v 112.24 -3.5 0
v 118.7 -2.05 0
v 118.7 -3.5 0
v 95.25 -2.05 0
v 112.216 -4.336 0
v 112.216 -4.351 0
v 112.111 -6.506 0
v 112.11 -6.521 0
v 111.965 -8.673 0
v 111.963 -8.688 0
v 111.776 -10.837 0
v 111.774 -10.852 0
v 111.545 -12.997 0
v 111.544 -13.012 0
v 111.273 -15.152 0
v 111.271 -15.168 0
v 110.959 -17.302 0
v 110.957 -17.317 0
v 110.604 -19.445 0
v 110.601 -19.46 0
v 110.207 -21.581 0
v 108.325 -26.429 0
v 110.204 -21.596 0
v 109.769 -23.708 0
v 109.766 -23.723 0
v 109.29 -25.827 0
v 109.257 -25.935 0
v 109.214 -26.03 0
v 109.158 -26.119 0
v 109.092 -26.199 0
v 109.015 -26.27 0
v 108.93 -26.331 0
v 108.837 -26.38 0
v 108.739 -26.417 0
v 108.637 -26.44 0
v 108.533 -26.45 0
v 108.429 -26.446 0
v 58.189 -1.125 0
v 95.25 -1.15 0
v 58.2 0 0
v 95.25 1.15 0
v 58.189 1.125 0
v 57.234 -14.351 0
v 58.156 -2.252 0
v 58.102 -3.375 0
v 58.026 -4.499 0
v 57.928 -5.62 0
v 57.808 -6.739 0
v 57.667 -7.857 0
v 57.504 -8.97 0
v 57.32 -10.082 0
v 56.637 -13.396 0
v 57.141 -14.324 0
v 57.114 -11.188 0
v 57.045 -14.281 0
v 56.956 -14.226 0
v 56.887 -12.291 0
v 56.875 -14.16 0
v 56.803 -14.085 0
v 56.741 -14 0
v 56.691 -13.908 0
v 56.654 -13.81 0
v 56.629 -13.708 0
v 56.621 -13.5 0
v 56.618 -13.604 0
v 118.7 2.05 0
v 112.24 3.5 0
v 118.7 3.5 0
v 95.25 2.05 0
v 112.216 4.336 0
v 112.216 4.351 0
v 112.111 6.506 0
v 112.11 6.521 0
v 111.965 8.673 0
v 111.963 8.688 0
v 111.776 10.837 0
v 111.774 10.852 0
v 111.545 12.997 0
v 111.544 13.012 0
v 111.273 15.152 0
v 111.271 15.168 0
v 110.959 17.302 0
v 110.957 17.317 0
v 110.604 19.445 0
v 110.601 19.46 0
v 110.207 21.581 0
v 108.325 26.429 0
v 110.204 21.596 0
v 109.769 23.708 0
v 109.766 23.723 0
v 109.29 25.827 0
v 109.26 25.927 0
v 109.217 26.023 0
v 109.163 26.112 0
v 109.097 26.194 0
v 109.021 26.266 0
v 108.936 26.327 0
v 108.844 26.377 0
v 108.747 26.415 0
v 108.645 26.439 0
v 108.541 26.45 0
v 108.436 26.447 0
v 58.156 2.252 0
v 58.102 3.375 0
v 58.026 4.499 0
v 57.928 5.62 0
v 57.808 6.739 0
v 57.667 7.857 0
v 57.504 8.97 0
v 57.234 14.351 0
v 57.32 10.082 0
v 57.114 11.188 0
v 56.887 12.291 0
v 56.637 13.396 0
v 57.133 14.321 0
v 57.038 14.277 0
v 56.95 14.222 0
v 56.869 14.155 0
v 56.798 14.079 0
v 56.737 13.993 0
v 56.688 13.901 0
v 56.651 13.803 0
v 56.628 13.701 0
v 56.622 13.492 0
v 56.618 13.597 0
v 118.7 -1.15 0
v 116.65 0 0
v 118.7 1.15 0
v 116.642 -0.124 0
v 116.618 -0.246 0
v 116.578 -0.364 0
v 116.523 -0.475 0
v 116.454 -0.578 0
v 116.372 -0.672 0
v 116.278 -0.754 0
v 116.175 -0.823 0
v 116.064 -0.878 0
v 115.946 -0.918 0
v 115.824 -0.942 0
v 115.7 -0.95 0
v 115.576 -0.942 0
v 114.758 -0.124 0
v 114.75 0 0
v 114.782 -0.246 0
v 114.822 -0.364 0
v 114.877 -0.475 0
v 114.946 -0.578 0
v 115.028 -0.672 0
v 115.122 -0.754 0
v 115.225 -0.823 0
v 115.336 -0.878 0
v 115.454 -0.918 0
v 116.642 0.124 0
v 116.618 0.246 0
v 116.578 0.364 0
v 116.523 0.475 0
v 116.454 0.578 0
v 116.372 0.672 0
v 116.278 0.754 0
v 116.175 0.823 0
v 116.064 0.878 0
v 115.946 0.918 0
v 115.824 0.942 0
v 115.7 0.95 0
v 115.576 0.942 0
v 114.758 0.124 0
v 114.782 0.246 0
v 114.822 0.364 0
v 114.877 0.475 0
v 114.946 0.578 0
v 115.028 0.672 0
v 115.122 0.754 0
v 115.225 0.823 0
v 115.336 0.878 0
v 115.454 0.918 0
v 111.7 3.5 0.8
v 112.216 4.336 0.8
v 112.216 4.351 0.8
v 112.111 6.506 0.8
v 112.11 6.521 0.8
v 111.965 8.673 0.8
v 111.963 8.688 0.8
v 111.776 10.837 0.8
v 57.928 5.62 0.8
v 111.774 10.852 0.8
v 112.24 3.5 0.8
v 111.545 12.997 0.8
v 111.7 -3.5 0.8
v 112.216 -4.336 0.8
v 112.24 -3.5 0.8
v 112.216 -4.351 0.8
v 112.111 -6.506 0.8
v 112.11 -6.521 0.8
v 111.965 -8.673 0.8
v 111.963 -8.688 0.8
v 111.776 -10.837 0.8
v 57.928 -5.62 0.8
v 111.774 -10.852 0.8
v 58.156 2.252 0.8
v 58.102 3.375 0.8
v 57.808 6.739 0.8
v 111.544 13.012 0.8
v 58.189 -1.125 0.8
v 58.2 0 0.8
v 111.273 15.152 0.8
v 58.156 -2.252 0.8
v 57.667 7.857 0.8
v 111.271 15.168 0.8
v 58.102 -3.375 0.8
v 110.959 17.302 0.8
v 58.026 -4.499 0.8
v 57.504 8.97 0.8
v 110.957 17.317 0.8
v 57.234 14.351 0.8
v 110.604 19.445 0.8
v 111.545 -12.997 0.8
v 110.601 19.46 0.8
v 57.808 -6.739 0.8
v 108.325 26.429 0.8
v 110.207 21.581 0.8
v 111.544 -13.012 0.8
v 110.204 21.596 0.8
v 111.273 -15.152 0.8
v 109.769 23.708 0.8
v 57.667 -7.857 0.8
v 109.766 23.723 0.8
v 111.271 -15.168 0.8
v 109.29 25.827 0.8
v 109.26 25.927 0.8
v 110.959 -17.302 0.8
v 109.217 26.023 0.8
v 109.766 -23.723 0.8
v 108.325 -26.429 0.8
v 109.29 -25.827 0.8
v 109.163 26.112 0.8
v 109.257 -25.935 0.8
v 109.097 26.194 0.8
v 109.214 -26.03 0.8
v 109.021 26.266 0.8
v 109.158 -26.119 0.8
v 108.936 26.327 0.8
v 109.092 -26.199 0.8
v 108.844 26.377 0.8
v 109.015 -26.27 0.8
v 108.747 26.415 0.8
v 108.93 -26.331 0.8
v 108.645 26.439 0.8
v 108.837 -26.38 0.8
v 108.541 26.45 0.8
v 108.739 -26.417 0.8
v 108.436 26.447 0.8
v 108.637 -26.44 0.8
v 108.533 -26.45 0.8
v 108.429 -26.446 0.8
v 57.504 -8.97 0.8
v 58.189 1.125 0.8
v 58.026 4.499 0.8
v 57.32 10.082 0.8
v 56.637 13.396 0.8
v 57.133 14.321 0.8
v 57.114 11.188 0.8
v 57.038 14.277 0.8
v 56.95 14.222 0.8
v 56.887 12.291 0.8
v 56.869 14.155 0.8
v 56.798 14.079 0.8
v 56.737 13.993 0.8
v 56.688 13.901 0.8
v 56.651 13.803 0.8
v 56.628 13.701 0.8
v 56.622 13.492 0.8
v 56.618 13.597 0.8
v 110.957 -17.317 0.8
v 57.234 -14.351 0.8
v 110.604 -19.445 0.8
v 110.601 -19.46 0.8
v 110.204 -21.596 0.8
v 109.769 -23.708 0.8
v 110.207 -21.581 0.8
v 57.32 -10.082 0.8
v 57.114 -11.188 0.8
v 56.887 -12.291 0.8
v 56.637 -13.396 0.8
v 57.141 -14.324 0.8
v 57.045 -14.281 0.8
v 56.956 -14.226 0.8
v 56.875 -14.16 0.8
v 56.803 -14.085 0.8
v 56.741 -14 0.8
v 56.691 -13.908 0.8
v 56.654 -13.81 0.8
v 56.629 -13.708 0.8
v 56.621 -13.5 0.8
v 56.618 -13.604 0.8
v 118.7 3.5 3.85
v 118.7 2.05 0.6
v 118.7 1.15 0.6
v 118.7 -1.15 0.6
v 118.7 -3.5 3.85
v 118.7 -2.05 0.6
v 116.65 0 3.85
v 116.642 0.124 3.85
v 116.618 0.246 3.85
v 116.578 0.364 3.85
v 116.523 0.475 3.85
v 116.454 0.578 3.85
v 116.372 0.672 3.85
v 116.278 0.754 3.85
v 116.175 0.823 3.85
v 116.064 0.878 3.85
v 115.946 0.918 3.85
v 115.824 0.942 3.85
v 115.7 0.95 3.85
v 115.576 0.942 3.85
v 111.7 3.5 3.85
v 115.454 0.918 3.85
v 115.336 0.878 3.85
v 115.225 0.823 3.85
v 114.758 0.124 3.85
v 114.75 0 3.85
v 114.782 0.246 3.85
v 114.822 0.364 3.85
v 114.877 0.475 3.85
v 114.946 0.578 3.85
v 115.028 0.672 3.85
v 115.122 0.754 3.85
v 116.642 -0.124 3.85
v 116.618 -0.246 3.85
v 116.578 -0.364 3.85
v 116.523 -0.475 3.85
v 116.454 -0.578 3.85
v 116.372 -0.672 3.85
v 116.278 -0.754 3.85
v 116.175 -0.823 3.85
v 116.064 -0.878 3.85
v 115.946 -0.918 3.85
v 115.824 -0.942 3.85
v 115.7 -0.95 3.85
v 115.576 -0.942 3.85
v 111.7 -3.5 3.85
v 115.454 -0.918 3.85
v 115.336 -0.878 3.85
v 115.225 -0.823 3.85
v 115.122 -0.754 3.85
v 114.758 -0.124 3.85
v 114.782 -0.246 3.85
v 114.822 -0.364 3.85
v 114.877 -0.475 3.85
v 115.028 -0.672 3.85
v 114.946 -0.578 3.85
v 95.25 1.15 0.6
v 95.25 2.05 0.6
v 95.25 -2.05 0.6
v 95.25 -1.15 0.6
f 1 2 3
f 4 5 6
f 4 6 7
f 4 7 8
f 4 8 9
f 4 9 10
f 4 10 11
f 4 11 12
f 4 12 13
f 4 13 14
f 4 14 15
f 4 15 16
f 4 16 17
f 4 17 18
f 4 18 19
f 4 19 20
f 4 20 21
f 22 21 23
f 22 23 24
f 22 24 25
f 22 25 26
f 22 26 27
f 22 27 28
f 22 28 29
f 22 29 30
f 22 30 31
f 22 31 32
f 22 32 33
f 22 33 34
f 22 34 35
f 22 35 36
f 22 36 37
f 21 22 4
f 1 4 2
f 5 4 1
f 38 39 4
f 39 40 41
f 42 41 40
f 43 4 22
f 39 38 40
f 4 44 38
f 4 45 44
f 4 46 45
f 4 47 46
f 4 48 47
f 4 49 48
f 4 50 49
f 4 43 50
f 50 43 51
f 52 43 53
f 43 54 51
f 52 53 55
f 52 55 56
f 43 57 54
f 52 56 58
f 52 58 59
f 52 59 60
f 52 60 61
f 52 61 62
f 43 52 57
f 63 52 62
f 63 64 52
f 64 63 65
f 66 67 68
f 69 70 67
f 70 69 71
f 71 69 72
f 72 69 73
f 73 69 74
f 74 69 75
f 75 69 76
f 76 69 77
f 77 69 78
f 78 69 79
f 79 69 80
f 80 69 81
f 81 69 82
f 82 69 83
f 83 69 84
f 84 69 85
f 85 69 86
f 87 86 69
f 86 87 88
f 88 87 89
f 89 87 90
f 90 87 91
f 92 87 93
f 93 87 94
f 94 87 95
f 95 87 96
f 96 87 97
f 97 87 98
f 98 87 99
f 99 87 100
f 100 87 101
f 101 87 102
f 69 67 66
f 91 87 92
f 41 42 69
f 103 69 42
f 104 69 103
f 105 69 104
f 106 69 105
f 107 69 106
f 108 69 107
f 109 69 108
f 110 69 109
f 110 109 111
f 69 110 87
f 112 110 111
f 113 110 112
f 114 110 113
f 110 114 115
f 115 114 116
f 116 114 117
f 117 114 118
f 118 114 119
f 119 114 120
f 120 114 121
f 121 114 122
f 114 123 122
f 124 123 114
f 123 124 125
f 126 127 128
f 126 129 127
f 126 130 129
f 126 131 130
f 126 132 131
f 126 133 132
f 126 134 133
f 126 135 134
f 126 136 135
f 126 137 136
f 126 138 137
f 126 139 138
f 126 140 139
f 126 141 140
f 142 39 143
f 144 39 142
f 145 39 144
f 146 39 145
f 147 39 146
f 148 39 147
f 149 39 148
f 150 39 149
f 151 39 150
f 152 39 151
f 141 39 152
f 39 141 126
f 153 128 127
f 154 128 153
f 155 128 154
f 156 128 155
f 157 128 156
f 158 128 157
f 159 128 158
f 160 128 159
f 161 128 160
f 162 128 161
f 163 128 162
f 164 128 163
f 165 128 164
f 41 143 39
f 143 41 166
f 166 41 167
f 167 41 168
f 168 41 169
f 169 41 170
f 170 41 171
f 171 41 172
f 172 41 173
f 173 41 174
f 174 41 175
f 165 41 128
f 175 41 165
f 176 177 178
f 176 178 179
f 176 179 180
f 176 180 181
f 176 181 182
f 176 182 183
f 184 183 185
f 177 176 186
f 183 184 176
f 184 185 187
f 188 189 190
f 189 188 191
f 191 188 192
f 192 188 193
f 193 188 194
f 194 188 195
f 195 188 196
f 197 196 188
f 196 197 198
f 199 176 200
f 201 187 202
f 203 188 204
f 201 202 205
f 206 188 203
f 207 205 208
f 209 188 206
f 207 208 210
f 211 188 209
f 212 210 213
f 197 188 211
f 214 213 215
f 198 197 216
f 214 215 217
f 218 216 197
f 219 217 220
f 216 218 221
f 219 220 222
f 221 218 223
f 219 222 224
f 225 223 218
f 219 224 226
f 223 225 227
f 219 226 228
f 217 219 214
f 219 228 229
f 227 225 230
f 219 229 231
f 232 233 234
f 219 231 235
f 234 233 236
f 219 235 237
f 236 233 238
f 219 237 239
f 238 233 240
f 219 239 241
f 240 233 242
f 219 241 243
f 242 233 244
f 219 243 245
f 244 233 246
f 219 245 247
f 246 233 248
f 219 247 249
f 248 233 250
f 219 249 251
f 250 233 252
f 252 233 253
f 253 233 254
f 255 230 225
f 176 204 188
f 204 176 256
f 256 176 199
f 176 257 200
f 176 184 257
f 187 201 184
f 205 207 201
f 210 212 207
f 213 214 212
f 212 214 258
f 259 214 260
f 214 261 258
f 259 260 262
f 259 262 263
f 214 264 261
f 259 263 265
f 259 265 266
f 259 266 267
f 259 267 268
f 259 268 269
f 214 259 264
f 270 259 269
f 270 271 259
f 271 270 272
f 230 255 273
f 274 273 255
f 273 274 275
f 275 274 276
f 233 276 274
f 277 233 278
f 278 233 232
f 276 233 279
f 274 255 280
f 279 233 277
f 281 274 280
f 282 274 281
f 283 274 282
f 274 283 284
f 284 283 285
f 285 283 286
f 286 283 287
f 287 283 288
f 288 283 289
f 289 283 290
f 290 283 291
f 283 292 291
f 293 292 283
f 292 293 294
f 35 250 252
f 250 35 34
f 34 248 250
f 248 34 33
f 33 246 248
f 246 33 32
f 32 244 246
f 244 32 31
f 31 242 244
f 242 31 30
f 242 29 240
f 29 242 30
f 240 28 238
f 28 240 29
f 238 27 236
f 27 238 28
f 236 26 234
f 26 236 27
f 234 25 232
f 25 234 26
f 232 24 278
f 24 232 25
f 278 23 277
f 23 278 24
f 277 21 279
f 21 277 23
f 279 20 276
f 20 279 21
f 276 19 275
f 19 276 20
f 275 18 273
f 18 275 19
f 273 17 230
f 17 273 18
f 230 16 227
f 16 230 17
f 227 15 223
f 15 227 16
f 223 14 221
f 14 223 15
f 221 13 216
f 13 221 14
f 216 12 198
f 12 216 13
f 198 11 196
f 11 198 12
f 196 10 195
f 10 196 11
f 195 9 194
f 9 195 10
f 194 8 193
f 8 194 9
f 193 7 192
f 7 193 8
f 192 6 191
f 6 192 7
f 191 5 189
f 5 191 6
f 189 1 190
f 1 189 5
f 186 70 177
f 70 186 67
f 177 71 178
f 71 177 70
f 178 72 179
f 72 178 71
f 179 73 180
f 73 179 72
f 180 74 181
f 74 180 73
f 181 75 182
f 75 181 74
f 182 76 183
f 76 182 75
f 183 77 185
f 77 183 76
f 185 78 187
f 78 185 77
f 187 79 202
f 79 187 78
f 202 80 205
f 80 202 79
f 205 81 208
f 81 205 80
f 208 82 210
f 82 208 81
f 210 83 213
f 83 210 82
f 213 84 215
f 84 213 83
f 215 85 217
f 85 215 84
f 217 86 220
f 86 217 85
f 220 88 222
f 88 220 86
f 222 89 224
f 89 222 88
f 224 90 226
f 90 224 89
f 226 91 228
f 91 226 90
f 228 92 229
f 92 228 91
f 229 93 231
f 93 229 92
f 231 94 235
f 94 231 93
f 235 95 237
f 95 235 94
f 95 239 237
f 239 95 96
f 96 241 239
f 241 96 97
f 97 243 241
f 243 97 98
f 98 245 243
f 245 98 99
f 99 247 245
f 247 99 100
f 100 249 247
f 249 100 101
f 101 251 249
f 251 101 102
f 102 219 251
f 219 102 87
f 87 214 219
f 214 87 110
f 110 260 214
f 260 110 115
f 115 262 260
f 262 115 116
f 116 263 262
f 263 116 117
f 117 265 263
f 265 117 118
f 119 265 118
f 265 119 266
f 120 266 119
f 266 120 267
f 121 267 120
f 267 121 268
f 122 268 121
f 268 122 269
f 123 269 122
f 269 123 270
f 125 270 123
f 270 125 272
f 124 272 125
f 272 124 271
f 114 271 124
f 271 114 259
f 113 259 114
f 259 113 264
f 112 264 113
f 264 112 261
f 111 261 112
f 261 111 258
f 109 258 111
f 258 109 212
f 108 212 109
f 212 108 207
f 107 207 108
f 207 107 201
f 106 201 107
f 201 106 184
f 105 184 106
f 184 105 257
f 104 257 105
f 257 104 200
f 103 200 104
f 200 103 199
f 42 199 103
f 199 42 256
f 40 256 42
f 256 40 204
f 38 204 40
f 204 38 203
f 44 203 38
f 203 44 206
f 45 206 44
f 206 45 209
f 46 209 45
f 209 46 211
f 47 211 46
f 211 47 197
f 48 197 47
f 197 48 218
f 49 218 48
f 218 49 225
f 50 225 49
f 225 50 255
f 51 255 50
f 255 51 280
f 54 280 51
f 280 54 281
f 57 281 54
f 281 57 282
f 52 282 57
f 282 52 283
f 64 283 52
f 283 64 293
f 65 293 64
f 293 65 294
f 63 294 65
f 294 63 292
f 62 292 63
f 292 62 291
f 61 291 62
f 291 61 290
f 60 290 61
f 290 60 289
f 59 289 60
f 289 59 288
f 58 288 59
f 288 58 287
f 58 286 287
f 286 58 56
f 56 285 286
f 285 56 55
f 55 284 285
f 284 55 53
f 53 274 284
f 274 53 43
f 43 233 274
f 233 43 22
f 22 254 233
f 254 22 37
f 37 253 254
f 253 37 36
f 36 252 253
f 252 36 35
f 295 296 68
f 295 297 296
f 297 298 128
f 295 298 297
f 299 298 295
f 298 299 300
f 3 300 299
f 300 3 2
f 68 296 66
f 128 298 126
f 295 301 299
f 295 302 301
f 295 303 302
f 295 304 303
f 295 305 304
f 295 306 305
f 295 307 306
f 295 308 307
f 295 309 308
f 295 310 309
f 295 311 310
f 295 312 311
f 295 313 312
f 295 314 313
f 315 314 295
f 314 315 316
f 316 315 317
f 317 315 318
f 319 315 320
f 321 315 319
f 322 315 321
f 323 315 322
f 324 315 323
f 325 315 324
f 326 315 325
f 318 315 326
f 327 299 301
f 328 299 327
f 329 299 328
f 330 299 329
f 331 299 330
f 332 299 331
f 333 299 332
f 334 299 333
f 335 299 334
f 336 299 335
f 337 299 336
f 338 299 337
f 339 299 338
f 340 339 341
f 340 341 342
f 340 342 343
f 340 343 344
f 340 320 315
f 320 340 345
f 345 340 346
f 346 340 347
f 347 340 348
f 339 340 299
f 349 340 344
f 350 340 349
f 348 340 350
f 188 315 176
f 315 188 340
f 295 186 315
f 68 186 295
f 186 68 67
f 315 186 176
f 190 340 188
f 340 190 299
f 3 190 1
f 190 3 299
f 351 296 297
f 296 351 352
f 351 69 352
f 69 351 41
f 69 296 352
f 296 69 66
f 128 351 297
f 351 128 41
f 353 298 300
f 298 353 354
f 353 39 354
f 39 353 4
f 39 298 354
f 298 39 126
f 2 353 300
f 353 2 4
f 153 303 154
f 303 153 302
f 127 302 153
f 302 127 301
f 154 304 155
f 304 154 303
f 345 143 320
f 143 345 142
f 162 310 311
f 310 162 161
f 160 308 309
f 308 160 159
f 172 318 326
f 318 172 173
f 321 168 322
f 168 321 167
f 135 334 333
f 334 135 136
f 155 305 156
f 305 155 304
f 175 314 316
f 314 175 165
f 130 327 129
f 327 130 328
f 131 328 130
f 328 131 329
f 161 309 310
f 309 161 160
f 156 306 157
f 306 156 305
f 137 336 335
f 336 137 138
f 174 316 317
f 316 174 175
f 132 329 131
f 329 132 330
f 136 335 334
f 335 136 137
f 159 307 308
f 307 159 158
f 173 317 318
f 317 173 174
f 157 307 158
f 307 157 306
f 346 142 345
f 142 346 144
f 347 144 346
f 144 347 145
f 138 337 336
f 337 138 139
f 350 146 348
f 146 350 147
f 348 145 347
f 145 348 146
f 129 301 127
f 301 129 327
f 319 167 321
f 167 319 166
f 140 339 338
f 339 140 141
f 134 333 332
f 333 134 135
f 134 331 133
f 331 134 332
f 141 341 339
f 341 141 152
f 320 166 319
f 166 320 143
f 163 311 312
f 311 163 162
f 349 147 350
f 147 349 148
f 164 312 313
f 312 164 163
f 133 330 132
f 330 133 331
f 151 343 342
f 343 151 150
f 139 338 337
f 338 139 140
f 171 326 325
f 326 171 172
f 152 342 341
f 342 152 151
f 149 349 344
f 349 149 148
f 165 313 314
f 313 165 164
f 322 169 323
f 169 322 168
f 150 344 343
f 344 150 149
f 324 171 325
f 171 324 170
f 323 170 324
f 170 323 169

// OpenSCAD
// Gen-CX — bobbin LID (top flange + locating tab). Print x12, flange face DOWN on the bed.
// CA-glue onto the hub top BEFORE winding. Tab = lap joint into the stator tab pocket; 1.75 mm filament
// pin through pin hole + stator ledge, trim flush. Lead slots carry both leads flush.
include <parameters.scad>;
$fn = 48;
module sector_2d(r_in, r_out, ang) {
    polygon([
        for (a = [-ang/2 : ang/24 : ang/2]) [r_in*cos(a), r_in*sin(a)],
        for (a = [ang/2 : -ang/24 : -ang/2]) [r_out*cos(a), r_out*sin(a)]
    ]);
}
module footprint_2d() { offset(r=wall) sector_2d(coil_id_r, coil_od_r, span_deg); }
module hub_2d()       { offset(delta=-coil_core_inset) sector_2d(coil_id_r, coil_od_r, span_deg); }

difference() {
    union() {
        linear_extrude(flange_t) footprint_2d();
        translate([coil_od_r + 0.2, -tab_w/2, 0]) cube([tab_len, tab_w, tab_h]);
    }
    translate([coil_mount_r, 0, -0.1]) cylinder(d=pin_d, h=tab_h + 1);
    for (y = [lead_y, -lead_y])
        translate([coil_od_r - coil_core_inset - 0.5, y - lead_slot_w/2, -0.1])
            cube([coil_core_inset + tab_len + 2, lead_slot_w, lead_groove_d + 0.1]);
}
